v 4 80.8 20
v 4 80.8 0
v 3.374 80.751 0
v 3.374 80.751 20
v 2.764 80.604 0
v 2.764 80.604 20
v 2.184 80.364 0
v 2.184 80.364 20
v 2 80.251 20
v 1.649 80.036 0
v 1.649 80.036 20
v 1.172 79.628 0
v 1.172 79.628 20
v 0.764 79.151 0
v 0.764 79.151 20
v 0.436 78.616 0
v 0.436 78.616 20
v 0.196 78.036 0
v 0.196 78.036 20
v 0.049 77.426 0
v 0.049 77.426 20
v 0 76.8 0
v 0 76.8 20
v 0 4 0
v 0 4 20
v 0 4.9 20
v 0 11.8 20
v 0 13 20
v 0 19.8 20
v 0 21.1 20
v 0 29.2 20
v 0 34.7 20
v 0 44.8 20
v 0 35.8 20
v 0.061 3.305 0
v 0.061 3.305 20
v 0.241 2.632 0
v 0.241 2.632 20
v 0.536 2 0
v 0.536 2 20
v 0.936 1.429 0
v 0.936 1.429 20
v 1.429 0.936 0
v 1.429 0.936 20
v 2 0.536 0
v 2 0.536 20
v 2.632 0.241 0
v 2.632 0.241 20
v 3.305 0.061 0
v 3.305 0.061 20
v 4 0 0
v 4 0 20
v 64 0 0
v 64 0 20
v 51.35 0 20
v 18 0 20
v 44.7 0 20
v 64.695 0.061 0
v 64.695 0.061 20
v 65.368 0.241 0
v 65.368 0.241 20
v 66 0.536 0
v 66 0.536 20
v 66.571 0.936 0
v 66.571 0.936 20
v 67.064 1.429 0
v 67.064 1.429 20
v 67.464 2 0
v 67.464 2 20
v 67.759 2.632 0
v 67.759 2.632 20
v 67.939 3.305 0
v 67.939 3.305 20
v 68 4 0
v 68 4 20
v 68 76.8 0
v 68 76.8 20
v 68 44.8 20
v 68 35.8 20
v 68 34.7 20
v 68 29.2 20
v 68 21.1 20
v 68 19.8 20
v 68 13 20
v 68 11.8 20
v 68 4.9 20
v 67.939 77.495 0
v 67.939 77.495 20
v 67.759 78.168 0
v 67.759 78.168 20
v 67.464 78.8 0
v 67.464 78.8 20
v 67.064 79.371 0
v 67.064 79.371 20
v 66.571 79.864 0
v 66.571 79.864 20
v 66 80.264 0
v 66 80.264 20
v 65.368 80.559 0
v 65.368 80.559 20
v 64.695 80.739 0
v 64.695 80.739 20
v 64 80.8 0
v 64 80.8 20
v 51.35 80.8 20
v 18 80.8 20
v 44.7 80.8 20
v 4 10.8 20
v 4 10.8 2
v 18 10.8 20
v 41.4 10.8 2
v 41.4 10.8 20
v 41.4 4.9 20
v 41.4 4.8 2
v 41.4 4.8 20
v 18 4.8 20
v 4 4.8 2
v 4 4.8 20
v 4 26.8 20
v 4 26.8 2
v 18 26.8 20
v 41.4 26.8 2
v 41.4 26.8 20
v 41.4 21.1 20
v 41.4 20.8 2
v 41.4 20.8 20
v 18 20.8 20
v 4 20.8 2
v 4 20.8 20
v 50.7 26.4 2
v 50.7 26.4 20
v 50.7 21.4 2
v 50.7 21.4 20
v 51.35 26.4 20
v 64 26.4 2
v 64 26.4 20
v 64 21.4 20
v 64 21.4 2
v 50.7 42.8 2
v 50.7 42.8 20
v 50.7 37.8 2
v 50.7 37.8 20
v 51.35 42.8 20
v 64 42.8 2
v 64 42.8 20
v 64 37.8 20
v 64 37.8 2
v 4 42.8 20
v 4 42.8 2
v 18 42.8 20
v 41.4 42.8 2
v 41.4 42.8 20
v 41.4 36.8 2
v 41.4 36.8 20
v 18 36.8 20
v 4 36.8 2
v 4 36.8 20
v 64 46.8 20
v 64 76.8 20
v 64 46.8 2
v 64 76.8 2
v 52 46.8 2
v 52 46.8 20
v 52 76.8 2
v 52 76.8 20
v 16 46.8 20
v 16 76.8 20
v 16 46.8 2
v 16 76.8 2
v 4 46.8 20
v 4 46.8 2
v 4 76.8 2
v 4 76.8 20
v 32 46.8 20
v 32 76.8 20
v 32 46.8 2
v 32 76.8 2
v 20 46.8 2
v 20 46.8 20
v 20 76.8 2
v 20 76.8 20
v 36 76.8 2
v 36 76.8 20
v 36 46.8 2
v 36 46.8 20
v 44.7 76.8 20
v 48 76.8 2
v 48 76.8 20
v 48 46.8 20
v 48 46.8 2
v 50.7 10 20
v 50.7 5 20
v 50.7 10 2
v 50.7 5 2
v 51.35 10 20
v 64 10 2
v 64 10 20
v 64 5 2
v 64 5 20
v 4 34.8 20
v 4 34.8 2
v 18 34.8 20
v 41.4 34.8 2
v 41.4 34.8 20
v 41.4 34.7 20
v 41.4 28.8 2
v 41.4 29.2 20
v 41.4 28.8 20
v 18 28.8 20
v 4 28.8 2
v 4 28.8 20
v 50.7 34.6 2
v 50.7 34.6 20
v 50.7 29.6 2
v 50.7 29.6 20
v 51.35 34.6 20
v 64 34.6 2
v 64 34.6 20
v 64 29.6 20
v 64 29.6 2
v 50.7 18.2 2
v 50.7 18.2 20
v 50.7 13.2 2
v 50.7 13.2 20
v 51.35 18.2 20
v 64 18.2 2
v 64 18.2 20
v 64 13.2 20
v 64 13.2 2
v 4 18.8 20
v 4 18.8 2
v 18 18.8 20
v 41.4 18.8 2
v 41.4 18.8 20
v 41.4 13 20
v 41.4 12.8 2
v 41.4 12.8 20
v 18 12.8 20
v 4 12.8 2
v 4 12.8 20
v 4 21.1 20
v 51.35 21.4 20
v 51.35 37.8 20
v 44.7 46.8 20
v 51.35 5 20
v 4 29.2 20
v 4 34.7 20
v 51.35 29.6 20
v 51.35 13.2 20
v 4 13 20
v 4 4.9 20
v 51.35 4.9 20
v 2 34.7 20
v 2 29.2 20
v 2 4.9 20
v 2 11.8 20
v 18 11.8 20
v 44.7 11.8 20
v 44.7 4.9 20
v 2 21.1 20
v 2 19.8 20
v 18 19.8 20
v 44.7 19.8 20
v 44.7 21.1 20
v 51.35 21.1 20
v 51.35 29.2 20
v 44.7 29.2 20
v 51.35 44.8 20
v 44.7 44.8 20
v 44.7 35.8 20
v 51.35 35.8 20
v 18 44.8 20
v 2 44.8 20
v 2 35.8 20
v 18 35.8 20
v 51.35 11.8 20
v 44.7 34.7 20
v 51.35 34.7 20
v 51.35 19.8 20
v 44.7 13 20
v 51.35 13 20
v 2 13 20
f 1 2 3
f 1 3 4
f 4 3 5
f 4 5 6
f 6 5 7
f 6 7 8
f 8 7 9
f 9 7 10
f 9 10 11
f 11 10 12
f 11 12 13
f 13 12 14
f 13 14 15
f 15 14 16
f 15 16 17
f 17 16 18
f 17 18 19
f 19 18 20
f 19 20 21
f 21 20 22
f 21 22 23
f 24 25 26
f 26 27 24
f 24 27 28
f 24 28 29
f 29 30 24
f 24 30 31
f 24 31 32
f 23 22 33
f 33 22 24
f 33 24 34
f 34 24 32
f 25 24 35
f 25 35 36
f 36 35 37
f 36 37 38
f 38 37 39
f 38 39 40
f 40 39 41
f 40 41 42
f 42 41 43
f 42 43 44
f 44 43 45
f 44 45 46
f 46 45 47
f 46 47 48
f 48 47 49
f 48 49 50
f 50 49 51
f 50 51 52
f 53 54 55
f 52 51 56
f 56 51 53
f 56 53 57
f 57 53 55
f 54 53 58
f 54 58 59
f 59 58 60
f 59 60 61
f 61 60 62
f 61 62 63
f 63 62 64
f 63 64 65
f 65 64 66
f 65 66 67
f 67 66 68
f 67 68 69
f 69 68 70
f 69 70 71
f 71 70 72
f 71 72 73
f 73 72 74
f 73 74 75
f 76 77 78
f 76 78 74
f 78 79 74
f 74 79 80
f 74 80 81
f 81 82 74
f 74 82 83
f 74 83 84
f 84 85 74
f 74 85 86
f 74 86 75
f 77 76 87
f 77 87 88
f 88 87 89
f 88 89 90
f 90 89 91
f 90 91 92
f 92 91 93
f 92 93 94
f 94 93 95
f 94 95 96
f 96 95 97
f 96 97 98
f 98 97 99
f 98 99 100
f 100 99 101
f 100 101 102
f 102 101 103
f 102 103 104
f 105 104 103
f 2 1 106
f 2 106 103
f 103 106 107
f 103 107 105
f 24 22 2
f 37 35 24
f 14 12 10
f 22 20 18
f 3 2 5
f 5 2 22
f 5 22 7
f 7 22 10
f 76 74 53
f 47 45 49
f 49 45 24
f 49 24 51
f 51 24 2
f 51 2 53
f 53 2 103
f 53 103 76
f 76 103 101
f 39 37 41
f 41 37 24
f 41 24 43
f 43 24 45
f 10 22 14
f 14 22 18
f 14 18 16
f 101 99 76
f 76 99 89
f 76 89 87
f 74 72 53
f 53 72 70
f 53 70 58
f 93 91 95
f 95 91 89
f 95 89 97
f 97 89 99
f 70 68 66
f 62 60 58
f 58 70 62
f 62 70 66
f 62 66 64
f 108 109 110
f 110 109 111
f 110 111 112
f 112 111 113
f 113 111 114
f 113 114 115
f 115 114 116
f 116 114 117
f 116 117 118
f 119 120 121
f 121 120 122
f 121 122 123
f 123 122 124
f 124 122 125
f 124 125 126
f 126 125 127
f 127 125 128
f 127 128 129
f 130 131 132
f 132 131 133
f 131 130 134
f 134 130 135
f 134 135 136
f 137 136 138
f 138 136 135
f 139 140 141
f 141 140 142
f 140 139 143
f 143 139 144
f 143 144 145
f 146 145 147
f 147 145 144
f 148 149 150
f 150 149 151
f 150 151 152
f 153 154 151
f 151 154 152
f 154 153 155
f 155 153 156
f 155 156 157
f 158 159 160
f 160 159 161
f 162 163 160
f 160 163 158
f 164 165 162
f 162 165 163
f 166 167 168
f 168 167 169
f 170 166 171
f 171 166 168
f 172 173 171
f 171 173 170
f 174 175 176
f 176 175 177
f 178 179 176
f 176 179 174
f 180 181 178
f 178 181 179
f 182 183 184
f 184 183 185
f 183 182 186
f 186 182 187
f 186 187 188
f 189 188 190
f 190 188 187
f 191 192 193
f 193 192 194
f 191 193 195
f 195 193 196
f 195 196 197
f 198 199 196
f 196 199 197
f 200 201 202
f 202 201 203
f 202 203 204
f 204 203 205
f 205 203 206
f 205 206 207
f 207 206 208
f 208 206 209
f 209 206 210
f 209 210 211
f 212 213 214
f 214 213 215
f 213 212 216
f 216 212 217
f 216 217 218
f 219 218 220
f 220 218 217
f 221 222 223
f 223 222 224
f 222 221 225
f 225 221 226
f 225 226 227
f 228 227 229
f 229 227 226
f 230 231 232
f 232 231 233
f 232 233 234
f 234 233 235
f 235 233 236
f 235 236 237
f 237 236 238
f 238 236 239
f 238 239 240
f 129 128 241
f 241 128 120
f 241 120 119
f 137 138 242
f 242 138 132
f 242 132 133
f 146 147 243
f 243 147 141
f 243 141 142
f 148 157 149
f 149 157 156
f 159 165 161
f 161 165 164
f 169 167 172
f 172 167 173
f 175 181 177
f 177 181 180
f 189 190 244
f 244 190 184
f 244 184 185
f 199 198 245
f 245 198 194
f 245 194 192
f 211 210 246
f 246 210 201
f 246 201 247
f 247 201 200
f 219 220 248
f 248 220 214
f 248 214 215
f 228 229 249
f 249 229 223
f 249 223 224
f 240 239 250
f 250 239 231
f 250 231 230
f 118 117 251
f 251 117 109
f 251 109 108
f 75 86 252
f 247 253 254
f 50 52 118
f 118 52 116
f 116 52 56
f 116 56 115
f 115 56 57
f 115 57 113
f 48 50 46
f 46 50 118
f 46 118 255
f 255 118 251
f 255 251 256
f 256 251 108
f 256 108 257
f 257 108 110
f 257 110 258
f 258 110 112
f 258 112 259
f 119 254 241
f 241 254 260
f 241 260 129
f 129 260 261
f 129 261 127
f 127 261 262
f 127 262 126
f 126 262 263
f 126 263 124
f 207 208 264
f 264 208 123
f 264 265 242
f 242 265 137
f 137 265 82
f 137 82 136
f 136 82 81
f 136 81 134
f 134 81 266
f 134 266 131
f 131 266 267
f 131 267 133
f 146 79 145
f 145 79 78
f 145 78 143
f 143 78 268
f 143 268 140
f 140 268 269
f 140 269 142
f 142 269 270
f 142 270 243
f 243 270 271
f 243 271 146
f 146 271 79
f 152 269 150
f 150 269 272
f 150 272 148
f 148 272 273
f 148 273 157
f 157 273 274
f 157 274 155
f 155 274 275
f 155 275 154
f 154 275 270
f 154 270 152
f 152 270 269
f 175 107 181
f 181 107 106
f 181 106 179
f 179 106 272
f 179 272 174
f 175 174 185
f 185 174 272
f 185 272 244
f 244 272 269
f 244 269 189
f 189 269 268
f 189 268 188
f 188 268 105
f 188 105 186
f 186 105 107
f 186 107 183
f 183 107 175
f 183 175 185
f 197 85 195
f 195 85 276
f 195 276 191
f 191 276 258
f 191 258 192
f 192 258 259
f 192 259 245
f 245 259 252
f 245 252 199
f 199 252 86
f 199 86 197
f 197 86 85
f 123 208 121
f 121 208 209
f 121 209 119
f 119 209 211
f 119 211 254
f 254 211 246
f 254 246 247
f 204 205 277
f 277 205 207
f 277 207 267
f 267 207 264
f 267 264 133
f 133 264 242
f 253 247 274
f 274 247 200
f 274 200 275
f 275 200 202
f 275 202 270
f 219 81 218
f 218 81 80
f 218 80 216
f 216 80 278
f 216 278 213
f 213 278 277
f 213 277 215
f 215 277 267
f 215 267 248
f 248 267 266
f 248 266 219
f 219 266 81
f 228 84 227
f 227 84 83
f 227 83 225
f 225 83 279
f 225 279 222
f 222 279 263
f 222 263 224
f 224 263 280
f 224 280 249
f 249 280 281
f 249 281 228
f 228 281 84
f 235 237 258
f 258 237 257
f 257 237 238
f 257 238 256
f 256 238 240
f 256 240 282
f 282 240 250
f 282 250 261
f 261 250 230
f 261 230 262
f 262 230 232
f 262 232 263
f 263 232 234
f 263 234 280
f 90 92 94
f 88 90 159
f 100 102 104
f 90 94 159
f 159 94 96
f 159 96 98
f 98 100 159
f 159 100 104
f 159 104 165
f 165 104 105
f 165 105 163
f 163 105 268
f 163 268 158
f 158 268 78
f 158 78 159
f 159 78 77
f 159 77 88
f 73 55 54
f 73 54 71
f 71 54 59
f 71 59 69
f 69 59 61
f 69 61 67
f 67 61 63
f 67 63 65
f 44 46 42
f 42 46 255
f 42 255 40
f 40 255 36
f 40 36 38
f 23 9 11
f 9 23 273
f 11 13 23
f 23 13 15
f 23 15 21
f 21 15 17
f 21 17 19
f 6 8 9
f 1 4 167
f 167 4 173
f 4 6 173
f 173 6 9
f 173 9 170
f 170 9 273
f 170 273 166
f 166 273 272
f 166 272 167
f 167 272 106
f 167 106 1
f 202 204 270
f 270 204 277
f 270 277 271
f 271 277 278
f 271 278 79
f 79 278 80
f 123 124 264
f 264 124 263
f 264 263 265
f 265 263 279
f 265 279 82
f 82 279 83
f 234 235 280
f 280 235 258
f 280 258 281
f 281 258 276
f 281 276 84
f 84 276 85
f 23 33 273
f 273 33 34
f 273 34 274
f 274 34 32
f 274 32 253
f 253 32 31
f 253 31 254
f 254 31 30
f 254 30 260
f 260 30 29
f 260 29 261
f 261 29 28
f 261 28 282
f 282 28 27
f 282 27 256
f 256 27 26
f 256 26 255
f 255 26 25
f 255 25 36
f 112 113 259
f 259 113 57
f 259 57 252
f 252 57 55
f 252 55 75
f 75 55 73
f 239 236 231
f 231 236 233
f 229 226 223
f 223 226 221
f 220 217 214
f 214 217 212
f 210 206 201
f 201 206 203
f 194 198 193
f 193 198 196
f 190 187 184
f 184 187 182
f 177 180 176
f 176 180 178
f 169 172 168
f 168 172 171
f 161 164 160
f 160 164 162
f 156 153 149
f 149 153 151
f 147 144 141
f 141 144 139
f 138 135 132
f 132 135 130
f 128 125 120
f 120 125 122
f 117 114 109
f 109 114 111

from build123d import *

# Parameters (mm, degrees)
BOSS_EXTRUDE1_DEPTH = 2
SKETCH1_3_W         = 37.4
SKETCH1_3_H         = 6
SKETCH1_3_W_2       = 13.3
SKETCH1_3_H_2       = 5
SKETCH1_3_W_3       = 12
SKETCH1_3_H_3       = 30
BOSS_EXTRUDE2_DEPTH = 20


with BuildPart() as part:
    # Sketch1 → Boss-Extrude1 (new body)
    with BuildSketch(Plane.XY):
        with BuildLine():
            Line((4, 0), (64, 0))
            ThreePointArc((64, 0), (66.828427125, 1.171572875), (68, 4))
            Line((68, 4), (68, 76.8))
            ThreePointArc((68, 76.8), (66.828427125, 79.628427125), (64, 80.8))
            Line((64, 80.8), (4, 80.8))
            ThreePointArc((4, 80.8), (1.171572875, 79.628427125), (0, 76.8))
            Line((0, 76.8), (0, 4))
            ThreePointArc((0, 4), (1.171572875, 1.171572875), (4, 0))
        make_face()
    extrude(amount=BOSS_EXTRUDE1_DEPTH)

    # Sketch1<3> → Boss-Extrude2 (add)
    with BuildSketch(Plane.XY):
        with BuildLine():
            ThreePointArc((0, 4), (1.171572875, 1.171572875), (4, 0))
            Line((4, 0), (64, 0))
            ThreePointArc((64, 0), (66.828427125, 1.171572875), (68, 4))
            Line((68, 4), (68, 76.8))
            ThreePointArc((68, 76.8), (66.828427125, 79.628427125), (64, 80.8))
            Line((64, 80.8), (4, 80.8))
            ThreePointArc((4, 80.8), (1.171572875, 79.628427125), (0, 76.8))
            Line((0, 76.8), (0, 4))
        make_face()
        with Locations((22.7, 7.8)):
            Rectangle(SKETCH1_3_W, SKETCH1_3_H, mode=Mode.SUBTRACT)
        with Locations((57.35, 7.5)):
            Rectangle(SKETCH1_3_W_2, SKETCH1_3_H_2, mode=Mode.SUBTRACT)
        with Locations((22.7, 15.8)):
            Rectangle(SKETCH1_3_W, SKETCH1_3_H, mode=Mode.SUBTRACT)
        with Locations((22.7, 23.8)):
            Rectangle(SKETCH1_3_W, SKETCH1_3_H, mode=Mode.SUBTRACT)
        with Locations((22.7, 31.8)):
            Rectangle(SKETCH1_3_W, SKETCH1_3_H, mode=Mode.SUBTRACT)
        with Locations((22.7, 39.8)):
            Rectangle(SKETCH1_3_W, SKETCH1_3_H, mode=Mode.SUBTRACT)
        with Locations((10, 61.8)):
            Rectangle(SKETCH1_3_W_3, SKETCH1_3_H_3, mode=Mode.SUBTRACT)
        with Locations((26, 61.8)):
            Rectangle(SKETCH1_3_W_3, SKETCH1_3_H_3, mode=Mode.SUBTRACT)
        with Locations((57.35, 15.7)):
            Rectangle(SKETCH1_3_W_2, SKETCH1_3_H_2, mode=Mode.SUBTRACT)
        with Locations((57.35, 32.1)):
            Rectangle(SKETCH1_3_W_2, SKETCH1_3_H_2, mode=Mode.SUBTRACT)
        with Locations((57.35, 23.9)):
            Rectangle(SKETCH1_3_W_2, SKETCH1_3_H_2, mode=Mode.SUBTRACT)
        with Locations((57.35, 40.3)):
            Rectangle(SKETCH1_3_W_2, SKETCH1_3_H_2, mode=Mode.SUBTRACT)
        with Locations((42, 61.8)):
            Rectangle(SKETCH1_3_W_3, SKETCH1_3_H_3, mode=Mode.SUBTRACT)
        with Locations((58, 61.8)):
            Rectangle(SKETCH1_3_W_3, SKETCH1_3_H_3, mode=Mode.SUBTRACT)
    extrude(amount=BOSS_EXTRUDE2_DEPTH)


solid = part.part
